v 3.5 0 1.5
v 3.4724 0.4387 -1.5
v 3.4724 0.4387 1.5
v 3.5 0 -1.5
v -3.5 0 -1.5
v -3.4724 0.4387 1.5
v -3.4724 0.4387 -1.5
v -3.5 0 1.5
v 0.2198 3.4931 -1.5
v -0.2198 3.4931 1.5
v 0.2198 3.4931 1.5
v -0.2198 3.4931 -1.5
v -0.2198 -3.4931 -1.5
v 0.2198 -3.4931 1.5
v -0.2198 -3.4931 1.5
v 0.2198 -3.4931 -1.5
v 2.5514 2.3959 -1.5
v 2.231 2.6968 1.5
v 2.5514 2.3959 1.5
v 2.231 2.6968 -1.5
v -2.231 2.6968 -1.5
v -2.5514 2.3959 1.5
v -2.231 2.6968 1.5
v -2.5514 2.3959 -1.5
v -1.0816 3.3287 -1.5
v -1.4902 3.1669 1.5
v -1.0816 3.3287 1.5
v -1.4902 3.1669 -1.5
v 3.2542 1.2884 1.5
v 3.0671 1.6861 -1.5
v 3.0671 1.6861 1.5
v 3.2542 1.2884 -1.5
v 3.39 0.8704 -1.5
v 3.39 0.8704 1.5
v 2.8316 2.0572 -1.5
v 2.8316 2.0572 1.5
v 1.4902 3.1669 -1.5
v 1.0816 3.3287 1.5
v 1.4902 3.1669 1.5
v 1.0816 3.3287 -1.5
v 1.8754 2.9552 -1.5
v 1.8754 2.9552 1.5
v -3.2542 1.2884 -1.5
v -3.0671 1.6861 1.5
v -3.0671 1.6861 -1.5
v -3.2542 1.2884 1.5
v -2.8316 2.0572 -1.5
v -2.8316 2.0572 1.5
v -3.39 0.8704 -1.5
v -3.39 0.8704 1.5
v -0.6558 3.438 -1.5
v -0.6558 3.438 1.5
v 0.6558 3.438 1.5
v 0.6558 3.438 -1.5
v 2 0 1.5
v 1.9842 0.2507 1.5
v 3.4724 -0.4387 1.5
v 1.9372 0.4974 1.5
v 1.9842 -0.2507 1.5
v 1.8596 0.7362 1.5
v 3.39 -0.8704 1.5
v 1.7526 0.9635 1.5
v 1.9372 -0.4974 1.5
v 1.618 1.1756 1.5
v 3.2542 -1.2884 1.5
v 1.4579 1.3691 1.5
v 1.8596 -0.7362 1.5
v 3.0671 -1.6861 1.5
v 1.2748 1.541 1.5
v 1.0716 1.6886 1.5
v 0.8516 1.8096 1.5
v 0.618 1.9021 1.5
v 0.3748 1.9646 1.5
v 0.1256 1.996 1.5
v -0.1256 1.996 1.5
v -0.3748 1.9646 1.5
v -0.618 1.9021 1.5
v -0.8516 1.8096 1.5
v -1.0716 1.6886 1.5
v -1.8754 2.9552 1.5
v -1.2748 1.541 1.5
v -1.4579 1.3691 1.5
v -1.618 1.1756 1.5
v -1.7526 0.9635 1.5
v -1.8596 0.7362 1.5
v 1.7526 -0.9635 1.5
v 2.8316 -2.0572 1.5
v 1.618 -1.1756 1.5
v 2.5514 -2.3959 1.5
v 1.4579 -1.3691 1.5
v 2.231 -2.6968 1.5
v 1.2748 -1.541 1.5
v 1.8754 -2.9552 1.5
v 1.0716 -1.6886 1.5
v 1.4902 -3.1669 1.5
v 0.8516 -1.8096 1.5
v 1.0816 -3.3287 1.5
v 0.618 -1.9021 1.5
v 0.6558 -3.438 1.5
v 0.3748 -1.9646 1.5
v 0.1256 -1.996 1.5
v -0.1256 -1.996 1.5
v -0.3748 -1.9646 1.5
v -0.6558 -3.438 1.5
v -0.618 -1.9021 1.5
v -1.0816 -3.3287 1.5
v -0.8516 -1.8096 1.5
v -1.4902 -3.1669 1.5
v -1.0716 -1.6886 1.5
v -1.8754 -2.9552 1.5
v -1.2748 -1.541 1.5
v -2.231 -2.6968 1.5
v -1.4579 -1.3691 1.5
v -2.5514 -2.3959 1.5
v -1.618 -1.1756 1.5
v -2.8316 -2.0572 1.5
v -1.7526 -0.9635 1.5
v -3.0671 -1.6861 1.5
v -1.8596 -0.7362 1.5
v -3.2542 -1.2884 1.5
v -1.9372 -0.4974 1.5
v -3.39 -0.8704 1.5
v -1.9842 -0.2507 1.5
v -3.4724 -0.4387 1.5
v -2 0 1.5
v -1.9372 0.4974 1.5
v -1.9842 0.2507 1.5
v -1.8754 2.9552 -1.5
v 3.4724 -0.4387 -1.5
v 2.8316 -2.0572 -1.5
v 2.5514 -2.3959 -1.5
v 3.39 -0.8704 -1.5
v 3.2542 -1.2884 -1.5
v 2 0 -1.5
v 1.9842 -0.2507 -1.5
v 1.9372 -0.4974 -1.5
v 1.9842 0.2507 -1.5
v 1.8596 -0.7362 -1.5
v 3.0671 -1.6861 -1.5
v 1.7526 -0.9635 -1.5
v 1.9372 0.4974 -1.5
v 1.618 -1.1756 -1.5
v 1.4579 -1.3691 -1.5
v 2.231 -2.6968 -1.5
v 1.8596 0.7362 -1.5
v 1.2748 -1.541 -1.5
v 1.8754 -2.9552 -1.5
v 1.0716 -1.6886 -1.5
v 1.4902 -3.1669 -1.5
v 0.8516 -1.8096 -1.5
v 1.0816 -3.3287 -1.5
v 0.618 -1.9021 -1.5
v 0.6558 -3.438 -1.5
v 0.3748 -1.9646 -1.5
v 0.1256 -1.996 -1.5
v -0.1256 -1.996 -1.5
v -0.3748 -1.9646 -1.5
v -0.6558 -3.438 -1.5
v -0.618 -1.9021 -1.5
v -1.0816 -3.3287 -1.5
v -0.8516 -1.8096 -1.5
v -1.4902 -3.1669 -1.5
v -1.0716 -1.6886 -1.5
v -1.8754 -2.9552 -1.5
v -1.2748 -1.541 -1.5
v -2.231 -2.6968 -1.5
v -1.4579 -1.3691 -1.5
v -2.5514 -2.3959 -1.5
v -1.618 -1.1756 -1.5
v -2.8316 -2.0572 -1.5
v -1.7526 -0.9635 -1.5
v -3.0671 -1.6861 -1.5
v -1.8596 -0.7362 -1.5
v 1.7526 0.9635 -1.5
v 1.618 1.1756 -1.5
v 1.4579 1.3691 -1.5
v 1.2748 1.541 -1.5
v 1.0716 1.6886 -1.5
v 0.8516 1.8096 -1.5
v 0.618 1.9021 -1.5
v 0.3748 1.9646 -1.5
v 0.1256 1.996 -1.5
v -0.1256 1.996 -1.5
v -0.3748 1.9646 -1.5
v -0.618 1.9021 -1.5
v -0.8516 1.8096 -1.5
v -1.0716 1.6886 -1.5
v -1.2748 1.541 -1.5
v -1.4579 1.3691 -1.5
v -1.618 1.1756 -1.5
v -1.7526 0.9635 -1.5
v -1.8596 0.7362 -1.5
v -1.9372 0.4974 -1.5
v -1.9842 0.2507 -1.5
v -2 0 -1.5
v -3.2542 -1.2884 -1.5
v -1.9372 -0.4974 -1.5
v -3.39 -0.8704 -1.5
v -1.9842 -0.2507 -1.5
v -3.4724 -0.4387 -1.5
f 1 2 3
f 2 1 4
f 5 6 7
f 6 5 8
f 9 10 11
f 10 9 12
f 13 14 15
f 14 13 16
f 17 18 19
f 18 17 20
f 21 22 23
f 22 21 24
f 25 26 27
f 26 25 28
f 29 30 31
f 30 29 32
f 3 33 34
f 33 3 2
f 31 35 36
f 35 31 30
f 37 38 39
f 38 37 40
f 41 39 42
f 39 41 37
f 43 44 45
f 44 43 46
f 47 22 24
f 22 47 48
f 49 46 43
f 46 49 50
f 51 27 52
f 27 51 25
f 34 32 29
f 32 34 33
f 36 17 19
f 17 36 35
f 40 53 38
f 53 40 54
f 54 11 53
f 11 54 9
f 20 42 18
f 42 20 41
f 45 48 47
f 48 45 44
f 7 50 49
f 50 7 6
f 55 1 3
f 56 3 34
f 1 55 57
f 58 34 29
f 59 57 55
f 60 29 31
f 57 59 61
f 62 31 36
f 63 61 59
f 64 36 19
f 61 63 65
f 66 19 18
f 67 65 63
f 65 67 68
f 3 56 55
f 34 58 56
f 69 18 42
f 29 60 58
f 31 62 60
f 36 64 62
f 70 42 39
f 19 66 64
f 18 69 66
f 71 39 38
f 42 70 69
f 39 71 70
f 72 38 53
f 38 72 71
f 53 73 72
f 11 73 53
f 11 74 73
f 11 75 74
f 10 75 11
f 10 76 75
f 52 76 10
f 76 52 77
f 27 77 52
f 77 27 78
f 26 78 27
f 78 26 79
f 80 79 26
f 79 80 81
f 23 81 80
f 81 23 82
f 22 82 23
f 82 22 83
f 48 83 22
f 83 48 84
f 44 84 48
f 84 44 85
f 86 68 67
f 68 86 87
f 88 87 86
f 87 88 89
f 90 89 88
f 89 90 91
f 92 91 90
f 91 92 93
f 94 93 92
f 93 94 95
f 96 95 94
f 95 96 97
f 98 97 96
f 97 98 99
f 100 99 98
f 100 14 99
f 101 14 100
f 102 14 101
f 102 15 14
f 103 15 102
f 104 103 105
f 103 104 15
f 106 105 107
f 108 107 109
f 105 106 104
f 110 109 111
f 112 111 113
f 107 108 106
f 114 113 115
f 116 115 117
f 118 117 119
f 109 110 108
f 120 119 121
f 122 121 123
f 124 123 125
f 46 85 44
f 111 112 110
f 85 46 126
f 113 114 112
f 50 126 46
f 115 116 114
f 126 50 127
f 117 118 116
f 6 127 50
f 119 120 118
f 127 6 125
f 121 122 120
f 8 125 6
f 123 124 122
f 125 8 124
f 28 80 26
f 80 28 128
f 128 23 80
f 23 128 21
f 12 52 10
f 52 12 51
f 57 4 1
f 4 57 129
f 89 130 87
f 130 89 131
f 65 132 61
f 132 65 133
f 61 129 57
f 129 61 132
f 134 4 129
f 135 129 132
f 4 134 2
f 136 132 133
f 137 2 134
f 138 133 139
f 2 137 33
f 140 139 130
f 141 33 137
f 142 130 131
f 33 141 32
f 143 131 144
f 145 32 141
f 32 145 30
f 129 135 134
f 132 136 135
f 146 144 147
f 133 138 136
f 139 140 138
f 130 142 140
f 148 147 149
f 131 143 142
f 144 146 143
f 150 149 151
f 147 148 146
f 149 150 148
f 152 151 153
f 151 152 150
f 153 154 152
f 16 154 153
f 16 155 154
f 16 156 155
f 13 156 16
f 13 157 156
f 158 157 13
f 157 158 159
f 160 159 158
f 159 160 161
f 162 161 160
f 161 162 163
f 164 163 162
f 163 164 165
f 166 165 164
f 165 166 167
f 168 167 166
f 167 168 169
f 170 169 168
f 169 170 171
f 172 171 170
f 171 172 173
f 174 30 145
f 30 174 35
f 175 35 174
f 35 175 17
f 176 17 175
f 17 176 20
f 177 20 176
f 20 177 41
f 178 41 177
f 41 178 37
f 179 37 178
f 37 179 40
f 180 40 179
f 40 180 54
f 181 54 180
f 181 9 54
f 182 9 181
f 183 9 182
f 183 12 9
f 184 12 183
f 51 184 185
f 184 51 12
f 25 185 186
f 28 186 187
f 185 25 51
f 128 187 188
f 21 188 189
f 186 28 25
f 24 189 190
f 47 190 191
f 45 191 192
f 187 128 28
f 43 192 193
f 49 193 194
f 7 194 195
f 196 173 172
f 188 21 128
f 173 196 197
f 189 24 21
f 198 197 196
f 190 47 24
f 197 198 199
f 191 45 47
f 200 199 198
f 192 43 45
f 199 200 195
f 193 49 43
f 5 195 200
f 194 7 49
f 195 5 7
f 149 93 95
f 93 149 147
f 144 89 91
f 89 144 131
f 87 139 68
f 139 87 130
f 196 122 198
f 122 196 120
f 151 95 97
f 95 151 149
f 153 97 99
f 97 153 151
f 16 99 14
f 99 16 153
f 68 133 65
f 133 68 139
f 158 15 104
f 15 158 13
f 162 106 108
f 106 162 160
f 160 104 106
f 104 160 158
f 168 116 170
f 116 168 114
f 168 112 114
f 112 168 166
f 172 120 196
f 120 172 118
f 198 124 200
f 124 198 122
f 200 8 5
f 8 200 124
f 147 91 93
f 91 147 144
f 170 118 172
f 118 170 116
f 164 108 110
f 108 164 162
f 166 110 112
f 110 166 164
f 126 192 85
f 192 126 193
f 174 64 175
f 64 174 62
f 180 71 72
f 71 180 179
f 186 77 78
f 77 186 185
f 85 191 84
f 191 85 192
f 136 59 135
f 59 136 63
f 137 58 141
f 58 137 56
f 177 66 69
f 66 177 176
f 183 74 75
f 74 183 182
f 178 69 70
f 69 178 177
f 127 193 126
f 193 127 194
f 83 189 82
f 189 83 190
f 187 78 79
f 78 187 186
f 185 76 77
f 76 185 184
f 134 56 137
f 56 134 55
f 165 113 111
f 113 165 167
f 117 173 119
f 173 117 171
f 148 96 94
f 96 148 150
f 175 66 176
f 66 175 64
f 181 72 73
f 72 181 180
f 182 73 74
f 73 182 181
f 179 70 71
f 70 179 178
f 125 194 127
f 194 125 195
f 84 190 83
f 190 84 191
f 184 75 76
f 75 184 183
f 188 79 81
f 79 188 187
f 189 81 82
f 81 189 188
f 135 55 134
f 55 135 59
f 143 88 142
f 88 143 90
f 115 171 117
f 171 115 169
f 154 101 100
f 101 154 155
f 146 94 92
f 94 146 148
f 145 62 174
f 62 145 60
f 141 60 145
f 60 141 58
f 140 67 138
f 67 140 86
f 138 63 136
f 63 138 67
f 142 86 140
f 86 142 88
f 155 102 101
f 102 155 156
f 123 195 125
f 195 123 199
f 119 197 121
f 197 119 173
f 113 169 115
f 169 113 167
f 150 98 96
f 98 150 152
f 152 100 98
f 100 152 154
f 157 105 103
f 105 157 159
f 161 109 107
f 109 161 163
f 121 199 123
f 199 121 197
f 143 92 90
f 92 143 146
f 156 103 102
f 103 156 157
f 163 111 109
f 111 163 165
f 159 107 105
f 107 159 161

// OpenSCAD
$fn = 50;


difference() {
	union() {
		translate(v = [0, 0, -1.5000000000]) {
			cylinder(h = 3, r = 3.5000000000);
		}
	}
	union() {
		translate(v = [0, 0, -100.0000000000]) {
			cylinder(h = 200, r = 2);
		}
	}
}
